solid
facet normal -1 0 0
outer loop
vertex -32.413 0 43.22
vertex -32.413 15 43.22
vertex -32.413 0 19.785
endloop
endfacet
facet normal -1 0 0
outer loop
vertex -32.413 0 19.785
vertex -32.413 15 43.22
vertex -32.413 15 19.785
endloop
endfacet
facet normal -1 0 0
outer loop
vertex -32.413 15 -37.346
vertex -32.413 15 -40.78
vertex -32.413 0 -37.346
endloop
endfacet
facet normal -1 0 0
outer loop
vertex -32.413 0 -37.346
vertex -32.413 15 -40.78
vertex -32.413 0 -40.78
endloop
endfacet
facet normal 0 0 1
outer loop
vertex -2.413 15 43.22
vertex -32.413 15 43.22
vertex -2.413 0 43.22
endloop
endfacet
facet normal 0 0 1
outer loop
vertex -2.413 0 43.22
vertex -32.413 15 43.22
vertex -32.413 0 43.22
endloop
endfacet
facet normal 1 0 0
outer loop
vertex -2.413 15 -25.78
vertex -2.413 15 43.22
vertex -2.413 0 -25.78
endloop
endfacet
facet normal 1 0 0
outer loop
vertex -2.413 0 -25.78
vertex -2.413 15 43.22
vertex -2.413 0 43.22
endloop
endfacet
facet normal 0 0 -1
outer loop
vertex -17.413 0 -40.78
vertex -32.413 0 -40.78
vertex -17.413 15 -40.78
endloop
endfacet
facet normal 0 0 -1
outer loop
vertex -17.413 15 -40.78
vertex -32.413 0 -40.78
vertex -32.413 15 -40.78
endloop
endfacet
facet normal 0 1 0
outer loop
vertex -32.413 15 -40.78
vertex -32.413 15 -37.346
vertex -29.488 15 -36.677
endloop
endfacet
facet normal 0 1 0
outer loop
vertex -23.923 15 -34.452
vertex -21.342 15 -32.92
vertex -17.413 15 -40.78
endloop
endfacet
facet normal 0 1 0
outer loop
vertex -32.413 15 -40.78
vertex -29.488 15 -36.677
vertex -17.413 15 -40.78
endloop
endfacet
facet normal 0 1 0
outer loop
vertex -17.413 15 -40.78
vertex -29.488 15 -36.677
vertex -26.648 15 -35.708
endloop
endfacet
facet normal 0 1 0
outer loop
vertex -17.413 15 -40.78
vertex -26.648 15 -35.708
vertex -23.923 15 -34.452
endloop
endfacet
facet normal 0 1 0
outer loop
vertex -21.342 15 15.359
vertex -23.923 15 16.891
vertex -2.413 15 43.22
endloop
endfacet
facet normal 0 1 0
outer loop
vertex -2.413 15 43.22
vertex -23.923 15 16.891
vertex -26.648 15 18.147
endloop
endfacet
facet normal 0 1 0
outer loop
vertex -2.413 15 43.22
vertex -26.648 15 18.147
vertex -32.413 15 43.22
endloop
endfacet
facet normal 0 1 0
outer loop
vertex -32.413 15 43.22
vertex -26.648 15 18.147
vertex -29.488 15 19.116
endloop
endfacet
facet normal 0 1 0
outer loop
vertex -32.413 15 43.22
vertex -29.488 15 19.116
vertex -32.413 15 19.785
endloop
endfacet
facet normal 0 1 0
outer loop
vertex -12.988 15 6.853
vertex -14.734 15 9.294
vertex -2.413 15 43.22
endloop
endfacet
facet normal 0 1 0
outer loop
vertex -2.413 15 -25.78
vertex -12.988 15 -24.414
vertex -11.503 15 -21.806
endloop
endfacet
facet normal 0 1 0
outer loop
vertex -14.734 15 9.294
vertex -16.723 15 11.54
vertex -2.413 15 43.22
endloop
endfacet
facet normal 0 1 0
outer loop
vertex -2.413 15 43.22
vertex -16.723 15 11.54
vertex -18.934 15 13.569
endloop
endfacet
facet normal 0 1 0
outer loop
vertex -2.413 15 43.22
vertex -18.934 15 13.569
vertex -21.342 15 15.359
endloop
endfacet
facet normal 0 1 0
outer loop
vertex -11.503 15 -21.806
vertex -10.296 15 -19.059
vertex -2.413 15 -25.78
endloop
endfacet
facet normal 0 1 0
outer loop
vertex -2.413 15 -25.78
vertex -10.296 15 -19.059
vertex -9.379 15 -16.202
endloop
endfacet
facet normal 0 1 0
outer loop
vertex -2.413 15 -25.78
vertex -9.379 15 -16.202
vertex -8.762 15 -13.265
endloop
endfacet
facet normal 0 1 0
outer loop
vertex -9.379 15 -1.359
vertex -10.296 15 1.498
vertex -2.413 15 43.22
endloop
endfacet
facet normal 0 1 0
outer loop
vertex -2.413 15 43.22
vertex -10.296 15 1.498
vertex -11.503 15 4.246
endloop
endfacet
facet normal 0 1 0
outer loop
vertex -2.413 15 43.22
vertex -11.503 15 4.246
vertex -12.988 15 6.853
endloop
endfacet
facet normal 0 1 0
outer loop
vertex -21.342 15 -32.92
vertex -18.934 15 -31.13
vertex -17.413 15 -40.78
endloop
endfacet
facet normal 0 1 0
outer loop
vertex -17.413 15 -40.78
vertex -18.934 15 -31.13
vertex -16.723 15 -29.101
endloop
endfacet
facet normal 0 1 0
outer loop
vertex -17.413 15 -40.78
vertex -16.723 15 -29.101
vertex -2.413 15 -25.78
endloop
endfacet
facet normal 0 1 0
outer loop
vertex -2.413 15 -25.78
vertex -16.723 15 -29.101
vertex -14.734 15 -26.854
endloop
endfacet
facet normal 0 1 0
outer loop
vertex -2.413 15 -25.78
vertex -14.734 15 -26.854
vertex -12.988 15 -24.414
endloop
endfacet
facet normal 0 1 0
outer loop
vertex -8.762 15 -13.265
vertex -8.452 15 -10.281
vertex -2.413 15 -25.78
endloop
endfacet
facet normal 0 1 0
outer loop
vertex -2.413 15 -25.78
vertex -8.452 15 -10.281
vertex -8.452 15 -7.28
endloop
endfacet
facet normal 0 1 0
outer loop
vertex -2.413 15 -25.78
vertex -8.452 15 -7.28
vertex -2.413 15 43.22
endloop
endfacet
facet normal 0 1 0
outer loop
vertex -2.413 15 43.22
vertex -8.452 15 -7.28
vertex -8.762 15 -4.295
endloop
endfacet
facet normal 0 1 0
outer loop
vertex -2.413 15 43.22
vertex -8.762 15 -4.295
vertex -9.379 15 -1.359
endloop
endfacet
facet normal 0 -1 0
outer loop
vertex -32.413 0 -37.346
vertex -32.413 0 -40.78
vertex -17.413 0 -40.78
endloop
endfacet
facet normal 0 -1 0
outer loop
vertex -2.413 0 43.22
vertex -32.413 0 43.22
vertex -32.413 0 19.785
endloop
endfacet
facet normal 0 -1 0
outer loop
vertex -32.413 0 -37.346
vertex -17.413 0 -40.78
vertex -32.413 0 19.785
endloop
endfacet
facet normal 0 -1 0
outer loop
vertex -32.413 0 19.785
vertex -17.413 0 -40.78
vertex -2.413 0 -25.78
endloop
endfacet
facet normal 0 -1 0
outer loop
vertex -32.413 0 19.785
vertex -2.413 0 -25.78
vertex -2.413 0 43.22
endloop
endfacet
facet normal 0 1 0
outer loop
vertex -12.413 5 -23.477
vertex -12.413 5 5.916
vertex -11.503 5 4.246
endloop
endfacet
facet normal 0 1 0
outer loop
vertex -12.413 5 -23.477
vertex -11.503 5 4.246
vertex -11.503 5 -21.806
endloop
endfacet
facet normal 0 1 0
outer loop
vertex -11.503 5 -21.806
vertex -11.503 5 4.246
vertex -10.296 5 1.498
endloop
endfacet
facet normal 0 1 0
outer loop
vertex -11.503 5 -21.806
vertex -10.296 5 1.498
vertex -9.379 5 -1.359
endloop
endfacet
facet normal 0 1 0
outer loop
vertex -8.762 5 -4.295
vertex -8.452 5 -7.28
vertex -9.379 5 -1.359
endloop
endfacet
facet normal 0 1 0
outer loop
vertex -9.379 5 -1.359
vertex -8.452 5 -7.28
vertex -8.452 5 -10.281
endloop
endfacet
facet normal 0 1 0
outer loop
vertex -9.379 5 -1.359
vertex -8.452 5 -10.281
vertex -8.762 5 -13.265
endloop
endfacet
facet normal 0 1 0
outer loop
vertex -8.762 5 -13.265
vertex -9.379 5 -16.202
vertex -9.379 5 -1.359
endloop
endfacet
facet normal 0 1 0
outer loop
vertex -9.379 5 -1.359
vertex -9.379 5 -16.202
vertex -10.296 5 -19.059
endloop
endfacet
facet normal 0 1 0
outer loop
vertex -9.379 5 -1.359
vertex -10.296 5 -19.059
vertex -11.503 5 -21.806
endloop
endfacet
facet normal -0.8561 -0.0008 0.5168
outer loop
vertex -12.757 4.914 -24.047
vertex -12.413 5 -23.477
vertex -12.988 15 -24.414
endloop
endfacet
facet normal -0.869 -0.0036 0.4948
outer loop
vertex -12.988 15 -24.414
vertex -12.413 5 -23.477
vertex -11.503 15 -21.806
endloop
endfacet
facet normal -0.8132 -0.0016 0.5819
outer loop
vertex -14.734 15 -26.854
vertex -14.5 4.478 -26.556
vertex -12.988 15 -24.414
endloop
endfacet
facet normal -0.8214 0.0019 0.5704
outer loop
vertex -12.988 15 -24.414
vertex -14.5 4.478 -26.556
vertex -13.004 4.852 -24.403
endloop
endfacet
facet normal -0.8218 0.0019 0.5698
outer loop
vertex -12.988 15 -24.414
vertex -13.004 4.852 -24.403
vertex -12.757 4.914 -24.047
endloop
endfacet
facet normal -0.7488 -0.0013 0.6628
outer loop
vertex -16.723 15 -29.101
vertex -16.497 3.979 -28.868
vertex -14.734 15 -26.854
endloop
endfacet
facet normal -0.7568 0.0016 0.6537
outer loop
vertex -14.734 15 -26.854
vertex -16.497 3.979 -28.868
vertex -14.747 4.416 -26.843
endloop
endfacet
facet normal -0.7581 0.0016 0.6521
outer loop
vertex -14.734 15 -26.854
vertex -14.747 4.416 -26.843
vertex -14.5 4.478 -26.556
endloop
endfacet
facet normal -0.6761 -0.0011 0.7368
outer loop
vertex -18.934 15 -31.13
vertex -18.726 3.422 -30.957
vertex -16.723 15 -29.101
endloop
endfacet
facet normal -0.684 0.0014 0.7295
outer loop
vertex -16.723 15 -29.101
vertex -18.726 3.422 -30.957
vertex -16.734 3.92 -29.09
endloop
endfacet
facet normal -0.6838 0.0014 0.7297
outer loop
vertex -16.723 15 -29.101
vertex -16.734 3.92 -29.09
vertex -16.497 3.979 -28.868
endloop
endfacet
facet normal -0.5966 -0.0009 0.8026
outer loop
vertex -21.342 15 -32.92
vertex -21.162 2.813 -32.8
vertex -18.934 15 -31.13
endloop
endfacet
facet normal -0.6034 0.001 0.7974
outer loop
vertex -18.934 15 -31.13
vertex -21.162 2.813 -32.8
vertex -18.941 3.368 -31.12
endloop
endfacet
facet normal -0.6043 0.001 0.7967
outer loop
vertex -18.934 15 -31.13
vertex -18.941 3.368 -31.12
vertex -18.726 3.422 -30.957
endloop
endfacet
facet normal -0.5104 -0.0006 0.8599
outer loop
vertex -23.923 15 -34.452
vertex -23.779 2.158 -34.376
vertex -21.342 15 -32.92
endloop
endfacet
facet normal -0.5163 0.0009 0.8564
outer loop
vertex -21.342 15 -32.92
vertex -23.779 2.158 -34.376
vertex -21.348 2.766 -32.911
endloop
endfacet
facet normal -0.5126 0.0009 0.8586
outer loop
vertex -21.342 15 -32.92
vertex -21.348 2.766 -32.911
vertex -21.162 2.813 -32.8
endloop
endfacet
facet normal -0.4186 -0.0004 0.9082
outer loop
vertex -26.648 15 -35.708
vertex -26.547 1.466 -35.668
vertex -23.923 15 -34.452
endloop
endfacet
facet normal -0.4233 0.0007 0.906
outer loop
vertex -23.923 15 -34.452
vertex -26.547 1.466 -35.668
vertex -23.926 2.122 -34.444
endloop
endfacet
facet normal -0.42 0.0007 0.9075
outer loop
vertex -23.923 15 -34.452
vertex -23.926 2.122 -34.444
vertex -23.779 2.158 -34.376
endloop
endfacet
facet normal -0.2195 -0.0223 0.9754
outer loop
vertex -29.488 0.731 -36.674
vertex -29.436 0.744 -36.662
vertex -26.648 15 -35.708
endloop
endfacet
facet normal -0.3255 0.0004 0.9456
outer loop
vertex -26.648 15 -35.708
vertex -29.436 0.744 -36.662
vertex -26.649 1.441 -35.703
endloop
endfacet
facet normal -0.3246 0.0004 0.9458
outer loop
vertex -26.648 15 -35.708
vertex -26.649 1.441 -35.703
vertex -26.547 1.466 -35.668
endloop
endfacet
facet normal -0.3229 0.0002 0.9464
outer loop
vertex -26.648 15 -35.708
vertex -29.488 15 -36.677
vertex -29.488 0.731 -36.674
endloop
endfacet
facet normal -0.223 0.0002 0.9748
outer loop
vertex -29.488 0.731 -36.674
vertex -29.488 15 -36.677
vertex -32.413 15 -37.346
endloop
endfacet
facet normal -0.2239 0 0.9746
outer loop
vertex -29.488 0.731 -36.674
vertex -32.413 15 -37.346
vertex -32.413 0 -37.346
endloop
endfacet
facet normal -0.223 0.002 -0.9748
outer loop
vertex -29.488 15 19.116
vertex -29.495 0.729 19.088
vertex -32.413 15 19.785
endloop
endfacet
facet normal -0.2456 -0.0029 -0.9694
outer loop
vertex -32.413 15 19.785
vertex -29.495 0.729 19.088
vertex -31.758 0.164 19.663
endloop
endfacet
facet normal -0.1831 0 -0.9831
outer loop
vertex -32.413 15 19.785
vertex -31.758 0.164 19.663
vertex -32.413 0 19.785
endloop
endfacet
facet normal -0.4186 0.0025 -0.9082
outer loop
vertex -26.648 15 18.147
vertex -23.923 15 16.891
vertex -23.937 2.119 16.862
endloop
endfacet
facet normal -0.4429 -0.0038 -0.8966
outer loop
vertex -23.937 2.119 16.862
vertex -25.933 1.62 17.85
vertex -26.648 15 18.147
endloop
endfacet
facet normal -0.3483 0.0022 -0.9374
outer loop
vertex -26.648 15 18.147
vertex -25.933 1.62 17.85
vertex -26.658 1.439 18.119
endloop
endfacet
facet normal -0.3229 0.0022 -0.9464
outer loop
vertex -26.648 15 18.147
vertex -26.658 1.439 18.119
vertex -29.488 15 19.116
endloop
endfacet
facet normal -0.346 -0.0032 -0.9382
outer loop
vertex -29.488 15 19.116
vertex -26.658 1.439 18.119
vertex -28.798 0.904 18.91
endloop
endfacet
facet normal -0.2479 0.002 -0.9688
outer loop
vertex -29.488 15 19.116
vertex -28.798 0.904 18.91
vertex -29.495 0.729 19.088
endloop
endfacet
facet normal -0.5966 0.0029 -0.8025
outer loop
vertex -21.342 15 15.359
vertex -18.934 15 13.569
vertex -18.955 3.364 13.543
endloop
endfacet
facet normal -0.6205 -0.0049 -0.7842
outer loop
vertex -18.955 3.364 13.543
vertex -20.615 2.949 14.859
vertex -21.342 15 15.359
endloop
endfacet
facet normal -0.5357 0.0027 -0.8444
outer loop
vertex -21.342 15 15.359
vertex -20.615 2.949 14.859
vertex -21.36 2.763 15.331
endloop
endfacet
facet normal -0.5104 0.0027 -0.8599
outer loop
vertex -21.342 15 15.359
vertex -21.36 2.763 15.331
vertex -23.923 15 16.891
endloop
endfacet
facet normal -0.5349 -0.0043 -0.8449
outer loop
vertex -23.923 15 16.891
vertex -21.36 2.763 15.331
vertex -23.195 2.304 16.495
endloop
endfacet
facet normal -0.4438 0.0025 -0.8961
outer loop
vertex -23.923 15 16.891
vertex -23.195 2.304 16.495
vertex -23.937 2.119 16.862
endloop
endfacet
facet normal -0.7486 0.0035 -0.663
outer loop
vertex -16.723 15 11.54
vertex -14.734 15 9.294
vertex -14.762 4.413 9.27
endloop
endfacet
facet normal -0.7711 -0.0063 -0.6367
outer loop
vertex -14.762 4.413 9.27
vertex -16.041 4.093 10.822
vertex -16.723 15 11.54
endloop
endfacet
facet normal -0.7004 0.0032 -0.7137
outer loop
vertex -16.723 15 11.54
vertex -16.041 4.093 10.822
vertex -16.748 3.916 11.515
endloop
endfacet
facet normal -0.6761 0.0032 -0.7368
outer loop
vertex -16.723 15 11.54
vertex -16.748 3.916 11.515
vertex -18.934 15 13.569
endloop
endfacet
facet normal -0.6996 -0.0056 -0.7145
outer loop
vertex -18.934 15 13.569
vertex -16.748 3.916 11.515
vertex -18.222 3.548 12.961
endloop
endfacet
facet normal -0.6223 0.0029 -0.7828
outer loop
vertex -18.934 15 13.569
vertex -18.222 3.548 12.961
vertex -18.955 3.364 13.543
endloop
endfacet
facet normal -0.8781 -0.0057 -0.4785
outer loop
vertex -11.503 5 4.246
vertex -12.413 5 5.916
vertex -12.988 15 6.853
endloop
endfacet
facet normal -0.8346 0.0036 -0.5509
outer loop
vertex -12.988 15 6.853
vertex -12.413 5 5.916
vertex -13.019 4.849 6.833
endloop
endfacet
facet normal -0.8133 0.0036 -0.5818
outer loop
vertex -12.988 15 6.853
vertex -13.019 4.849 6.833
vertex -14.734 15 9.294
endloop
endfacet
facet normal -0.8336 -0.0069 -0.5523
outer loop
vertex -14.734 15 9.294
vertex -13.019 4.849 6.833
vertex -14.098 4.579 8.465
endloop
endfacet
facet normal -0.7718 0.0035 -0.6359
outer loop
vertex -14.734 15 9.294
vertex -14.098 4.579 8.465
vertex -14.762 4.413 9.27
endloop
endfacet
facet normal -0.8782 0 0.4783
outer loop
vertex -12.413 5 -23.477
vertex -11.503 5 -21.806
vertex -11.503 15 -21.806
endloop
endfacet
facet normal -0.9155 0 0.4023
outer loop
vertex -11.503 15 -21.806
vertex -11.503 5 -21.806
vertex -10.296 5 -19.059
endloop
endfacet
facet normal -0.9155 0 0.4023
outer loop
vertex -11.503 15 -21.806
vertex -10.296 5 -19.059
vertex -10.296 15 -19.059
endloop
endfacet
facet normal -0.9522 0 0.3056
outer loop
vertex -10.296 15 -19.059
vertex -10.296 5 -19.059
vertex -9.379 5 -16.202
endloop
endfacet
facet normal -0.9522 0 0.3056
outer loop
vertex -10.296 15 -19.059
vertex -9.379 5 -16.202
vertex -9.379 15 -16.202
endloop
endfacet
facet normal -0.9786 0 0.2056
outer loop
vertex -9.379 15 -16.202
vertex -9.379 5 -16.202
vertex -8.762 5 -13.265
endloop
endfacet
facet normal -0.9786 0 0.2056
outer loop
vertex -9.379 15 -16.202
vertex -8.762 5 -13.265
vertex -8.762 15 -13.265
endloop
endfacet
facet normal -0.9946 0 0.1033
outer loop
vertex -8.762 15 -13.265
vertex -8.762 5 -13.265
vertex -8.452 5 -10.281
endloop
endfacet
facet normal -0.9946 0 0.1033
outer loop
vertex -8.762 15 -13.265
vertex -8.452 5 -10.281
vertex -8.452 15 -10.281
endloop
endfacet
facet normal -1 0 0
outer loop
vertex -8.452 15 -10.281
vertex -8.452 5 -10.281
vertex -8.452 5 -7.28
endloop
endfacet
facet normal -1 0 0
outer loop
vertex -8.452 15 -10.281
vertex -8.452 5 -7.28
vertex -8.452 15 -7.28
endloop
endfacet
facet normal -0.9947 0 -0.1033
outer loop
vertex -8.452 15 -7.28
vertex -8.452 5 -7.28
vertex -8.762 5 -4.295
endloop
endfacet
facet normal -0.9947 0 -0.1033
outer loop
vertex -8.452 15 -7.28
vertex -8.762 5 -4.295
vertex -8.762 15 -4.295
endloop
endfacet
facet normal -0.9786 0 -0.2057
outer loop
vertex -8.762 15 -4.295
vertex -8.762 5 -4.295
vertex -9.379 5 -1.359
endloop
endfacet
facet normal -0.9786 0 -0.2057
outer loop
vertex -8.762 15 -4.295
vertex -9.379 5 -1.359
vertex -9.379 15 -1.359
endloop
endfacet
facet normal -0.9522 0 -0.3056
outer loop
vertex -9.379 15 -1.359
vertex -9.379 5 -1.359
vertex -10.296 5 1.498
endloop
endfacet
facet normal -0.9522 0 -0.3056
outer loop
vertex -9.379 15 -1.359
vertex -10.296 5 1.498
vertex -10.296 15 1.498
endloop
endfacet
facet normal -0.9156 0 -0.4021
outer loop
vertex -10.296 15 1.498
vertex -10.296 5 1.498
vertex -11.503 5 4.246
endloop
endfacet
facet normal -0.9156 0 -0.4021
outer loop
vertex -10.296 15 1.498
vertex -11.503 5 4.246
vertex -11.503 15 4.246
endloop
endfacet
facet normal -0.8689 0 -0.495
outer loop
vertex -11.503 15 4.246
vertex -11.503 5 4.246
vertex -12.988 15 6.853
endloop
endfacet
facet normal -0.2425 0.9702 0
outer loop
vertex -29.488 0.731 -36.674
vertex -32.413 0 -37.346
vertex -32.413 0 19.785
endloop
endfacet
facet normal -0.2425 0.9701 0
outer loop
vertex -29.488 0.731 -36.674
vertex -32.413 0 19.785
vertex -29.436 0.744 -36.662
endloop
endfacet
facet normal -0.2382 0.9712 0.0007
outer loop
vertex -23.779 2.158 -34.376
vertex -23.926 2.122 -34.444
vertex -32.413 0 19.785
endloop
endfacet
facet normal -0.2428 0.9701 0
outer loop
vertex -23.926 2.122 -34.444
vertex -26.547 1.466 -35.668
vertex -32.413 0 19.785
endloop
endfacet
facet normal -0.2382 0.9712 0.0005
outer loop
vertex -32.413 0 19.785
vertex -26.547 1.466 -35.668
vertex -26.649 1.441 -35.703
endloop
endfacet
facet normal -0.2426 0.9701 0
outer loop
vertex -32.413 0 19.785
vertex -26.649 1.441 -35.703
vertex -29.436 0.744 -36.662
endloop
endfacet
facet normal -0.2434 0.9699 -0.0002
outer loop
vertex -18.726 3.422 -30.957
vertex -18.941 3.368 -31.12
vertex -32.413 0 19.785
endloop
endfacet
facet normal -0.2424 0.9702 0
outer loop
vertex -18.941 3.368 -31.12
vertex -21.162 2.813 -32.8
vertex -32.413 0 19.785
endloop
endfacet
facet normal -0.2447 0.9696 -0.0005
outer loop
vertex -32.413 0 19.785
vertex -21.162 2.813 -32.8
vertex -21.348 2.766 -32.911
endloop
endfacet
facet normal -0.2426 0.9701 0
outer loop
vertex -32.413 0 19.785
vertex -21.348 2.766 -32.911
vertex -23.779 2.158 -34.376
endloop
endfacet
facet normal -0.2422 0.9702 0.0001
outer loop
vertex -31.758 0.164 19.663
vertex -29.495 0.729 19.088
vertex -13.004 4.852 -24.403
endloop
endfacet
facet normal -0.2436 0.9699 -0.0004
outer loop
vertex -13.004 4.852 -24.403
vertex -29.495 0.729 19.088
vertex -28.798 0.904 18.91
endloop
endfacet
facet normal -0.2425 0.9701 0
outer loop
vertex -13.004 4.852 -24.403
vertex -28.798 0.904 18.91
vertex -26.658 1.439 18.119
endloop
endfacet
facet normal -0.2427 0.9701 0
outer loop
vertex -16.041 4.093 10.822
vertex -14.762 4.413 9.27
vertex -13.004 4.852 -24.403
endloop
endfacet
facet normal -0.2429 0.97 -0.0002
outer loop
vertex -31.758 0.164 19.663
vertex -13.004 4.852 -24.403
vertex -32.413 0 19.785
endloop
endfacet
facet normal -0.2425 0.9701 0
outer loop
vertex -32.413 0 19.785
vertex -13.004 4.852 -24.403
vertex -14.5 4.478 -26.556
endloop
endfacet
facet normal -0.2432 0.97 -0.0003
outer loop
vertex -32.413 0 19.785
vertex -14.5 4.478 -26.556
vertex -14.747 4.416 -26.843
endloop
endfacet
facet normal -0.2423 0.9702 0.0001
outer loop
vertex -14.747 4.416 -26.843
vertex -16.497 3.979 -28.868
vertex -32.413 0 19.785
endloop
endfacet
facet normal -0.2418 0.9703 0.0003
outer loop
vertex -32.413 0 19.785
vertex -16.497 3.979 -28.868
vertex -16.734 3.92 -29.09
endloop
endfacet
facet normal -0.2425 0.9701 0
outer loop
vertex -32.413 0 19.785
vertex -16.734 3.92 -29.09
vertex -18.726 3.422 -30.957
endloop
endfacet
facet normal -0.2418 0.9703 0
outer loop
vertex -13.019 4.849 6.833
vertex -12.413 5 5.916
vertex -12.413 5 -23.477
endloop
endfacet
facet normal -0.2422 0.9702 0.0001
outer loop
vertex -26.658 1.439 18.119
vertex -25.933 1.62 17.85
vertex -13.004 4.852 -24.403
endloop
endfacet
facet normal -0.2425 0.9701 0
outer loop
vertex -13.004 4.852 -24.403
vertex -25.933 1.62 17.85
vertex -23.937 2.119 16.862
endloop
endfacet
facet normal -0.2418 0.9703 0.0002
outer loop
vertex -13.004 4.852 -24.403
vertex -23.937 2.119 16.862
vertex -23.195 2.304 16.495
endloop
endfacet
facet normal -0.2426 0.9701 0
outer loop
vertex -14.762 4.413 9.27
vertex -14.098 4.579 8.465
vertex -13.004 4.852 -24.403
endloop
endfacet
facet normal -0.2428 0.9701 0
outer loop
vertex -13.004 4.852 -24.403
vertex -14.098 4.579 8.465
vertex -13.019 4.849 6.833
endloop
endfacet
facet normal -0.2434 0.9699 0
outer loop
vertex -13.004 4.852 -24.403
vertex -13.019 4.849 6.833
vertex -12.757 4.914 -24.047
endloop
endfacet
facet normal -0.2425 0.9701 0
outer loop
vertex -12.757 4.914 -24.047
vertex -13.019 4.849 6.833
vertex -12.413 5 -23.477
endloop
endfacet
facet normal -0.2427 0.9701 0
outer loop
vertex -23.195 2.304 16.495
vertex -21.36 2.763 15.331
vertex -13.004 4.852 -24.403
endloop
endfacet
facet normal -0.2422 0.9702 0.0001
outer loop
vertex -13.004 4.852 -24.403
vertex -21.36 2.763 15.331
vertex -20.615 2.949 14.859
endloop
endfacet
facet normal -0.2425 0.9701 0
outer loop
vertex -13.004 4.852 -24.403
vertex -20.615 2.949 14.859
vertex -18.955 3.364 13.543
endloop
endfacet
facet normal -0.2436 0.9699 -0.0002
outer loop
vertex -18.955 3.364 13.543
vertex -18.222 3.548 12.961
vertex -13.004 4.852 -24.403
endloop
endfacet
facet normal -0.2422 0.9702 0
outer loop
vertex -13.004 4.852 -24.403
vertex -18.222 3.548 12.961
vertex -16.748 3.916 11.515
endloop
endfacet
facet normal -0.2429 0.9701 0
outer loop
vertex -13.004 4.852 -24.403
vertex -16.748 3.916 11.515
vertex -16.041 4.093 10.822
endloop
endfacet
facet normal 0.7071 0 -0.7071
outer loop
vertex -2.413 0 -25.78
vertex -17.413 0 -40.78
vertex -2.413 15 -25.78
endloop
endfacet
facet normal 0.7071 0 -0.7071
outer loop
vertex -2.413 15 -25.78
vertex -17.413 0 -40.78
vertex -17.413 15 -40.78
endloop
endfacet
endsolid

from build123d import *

# Parameters (mm, degrees)
ESQUISSE2_W             = 30
ESQUISSE2_H             = 84
BOSS_EXTRU_1_DEPTH      = 15
ESQUISSE3_R             = 29
ENL_V_MAT_EXTRU_1_DEPTH = 10
CHANFREIN1_SIZE         = 20
CHANFREIN1_SIZE_2       = 5
CHANFREIN2_SIZE         = 15


with BuildPart() as part:
    # Esquisse2 → Boss.-Extru.1 (new body)
    with BuildSketch(Plane(origin=(0, 0, 0), x_dir=(1, 0, 0), z_dir=(0, 1, 0))):
        with Locations((-17.412854797, -1.219560319)):
            Rectangle(ESQUISSE2_W, ESQUISSE2_H)
    extrude(amount=BOSS_EXTRU_1_DEPTH)

    # Esquisse3 → Enlèv. mat.-Extru.1 (cut)
    with BuildSketch(Plane(origin=(0, 15, 0), x_dir=(1, 0, 0), z_dir=(0, 1, 0))):
        with Locations((-37.412854797, 8.780439681)):
            Circle(ESQUISSE3_R)
    extrude(amount=-ENL_V_MAT_EXTRU_1_DEPTH, mode=Mode.SUBTRACT)

    # Chanfrein1
    # the kernel refuses this chamfer: 20, 5 mm, written as the material it takes off along each edge
    with BuildSketch(Plane(origin=(-32.412854797, 5, 71.727824028), x_dir=(0.9999563942249224, 0.00933861064031752, 0), z_dir=(0, 0, -1))) as chanfrein1_piece_1_section:
        Polygon((CHANFREIN1_SIZE * 0.999956394225, CHANFREIN1_SIZE * 0.00933861064032), (-CHANFREIN1_SIZE_2 * 0.00933861064032, CHANFREIN1_SIZE_2 * 0.999956394225), (0, 0), align=None)
    chanfrein1_piece_1 = extrude(amount=161.016527419, mode=Mode.PRIVATE)
    chanfrein1_piece_1 = chanfrein1_piece_1 & Plane(origin=(-37.412854797, 3.276810051, -8.780439681), x_dir=(1, 0, 0), z_dir=(0, 1, 0)) * Cylinder(29, 403, mode=Mode.PRIVATE)
    add(chanfrein1_piece_1, mode=Mode.SUBTRACT)

    # Chanfrein2
    chanfrein2_edges = [part.edges().sort_by_distance(p)[0] for p in [
        (-2.412854797, 7.5, -40.780439681),
    ]]
    chamfer(chanfrein2_edges, length=CHANFREIN2_SIZE)


solid = part.part
